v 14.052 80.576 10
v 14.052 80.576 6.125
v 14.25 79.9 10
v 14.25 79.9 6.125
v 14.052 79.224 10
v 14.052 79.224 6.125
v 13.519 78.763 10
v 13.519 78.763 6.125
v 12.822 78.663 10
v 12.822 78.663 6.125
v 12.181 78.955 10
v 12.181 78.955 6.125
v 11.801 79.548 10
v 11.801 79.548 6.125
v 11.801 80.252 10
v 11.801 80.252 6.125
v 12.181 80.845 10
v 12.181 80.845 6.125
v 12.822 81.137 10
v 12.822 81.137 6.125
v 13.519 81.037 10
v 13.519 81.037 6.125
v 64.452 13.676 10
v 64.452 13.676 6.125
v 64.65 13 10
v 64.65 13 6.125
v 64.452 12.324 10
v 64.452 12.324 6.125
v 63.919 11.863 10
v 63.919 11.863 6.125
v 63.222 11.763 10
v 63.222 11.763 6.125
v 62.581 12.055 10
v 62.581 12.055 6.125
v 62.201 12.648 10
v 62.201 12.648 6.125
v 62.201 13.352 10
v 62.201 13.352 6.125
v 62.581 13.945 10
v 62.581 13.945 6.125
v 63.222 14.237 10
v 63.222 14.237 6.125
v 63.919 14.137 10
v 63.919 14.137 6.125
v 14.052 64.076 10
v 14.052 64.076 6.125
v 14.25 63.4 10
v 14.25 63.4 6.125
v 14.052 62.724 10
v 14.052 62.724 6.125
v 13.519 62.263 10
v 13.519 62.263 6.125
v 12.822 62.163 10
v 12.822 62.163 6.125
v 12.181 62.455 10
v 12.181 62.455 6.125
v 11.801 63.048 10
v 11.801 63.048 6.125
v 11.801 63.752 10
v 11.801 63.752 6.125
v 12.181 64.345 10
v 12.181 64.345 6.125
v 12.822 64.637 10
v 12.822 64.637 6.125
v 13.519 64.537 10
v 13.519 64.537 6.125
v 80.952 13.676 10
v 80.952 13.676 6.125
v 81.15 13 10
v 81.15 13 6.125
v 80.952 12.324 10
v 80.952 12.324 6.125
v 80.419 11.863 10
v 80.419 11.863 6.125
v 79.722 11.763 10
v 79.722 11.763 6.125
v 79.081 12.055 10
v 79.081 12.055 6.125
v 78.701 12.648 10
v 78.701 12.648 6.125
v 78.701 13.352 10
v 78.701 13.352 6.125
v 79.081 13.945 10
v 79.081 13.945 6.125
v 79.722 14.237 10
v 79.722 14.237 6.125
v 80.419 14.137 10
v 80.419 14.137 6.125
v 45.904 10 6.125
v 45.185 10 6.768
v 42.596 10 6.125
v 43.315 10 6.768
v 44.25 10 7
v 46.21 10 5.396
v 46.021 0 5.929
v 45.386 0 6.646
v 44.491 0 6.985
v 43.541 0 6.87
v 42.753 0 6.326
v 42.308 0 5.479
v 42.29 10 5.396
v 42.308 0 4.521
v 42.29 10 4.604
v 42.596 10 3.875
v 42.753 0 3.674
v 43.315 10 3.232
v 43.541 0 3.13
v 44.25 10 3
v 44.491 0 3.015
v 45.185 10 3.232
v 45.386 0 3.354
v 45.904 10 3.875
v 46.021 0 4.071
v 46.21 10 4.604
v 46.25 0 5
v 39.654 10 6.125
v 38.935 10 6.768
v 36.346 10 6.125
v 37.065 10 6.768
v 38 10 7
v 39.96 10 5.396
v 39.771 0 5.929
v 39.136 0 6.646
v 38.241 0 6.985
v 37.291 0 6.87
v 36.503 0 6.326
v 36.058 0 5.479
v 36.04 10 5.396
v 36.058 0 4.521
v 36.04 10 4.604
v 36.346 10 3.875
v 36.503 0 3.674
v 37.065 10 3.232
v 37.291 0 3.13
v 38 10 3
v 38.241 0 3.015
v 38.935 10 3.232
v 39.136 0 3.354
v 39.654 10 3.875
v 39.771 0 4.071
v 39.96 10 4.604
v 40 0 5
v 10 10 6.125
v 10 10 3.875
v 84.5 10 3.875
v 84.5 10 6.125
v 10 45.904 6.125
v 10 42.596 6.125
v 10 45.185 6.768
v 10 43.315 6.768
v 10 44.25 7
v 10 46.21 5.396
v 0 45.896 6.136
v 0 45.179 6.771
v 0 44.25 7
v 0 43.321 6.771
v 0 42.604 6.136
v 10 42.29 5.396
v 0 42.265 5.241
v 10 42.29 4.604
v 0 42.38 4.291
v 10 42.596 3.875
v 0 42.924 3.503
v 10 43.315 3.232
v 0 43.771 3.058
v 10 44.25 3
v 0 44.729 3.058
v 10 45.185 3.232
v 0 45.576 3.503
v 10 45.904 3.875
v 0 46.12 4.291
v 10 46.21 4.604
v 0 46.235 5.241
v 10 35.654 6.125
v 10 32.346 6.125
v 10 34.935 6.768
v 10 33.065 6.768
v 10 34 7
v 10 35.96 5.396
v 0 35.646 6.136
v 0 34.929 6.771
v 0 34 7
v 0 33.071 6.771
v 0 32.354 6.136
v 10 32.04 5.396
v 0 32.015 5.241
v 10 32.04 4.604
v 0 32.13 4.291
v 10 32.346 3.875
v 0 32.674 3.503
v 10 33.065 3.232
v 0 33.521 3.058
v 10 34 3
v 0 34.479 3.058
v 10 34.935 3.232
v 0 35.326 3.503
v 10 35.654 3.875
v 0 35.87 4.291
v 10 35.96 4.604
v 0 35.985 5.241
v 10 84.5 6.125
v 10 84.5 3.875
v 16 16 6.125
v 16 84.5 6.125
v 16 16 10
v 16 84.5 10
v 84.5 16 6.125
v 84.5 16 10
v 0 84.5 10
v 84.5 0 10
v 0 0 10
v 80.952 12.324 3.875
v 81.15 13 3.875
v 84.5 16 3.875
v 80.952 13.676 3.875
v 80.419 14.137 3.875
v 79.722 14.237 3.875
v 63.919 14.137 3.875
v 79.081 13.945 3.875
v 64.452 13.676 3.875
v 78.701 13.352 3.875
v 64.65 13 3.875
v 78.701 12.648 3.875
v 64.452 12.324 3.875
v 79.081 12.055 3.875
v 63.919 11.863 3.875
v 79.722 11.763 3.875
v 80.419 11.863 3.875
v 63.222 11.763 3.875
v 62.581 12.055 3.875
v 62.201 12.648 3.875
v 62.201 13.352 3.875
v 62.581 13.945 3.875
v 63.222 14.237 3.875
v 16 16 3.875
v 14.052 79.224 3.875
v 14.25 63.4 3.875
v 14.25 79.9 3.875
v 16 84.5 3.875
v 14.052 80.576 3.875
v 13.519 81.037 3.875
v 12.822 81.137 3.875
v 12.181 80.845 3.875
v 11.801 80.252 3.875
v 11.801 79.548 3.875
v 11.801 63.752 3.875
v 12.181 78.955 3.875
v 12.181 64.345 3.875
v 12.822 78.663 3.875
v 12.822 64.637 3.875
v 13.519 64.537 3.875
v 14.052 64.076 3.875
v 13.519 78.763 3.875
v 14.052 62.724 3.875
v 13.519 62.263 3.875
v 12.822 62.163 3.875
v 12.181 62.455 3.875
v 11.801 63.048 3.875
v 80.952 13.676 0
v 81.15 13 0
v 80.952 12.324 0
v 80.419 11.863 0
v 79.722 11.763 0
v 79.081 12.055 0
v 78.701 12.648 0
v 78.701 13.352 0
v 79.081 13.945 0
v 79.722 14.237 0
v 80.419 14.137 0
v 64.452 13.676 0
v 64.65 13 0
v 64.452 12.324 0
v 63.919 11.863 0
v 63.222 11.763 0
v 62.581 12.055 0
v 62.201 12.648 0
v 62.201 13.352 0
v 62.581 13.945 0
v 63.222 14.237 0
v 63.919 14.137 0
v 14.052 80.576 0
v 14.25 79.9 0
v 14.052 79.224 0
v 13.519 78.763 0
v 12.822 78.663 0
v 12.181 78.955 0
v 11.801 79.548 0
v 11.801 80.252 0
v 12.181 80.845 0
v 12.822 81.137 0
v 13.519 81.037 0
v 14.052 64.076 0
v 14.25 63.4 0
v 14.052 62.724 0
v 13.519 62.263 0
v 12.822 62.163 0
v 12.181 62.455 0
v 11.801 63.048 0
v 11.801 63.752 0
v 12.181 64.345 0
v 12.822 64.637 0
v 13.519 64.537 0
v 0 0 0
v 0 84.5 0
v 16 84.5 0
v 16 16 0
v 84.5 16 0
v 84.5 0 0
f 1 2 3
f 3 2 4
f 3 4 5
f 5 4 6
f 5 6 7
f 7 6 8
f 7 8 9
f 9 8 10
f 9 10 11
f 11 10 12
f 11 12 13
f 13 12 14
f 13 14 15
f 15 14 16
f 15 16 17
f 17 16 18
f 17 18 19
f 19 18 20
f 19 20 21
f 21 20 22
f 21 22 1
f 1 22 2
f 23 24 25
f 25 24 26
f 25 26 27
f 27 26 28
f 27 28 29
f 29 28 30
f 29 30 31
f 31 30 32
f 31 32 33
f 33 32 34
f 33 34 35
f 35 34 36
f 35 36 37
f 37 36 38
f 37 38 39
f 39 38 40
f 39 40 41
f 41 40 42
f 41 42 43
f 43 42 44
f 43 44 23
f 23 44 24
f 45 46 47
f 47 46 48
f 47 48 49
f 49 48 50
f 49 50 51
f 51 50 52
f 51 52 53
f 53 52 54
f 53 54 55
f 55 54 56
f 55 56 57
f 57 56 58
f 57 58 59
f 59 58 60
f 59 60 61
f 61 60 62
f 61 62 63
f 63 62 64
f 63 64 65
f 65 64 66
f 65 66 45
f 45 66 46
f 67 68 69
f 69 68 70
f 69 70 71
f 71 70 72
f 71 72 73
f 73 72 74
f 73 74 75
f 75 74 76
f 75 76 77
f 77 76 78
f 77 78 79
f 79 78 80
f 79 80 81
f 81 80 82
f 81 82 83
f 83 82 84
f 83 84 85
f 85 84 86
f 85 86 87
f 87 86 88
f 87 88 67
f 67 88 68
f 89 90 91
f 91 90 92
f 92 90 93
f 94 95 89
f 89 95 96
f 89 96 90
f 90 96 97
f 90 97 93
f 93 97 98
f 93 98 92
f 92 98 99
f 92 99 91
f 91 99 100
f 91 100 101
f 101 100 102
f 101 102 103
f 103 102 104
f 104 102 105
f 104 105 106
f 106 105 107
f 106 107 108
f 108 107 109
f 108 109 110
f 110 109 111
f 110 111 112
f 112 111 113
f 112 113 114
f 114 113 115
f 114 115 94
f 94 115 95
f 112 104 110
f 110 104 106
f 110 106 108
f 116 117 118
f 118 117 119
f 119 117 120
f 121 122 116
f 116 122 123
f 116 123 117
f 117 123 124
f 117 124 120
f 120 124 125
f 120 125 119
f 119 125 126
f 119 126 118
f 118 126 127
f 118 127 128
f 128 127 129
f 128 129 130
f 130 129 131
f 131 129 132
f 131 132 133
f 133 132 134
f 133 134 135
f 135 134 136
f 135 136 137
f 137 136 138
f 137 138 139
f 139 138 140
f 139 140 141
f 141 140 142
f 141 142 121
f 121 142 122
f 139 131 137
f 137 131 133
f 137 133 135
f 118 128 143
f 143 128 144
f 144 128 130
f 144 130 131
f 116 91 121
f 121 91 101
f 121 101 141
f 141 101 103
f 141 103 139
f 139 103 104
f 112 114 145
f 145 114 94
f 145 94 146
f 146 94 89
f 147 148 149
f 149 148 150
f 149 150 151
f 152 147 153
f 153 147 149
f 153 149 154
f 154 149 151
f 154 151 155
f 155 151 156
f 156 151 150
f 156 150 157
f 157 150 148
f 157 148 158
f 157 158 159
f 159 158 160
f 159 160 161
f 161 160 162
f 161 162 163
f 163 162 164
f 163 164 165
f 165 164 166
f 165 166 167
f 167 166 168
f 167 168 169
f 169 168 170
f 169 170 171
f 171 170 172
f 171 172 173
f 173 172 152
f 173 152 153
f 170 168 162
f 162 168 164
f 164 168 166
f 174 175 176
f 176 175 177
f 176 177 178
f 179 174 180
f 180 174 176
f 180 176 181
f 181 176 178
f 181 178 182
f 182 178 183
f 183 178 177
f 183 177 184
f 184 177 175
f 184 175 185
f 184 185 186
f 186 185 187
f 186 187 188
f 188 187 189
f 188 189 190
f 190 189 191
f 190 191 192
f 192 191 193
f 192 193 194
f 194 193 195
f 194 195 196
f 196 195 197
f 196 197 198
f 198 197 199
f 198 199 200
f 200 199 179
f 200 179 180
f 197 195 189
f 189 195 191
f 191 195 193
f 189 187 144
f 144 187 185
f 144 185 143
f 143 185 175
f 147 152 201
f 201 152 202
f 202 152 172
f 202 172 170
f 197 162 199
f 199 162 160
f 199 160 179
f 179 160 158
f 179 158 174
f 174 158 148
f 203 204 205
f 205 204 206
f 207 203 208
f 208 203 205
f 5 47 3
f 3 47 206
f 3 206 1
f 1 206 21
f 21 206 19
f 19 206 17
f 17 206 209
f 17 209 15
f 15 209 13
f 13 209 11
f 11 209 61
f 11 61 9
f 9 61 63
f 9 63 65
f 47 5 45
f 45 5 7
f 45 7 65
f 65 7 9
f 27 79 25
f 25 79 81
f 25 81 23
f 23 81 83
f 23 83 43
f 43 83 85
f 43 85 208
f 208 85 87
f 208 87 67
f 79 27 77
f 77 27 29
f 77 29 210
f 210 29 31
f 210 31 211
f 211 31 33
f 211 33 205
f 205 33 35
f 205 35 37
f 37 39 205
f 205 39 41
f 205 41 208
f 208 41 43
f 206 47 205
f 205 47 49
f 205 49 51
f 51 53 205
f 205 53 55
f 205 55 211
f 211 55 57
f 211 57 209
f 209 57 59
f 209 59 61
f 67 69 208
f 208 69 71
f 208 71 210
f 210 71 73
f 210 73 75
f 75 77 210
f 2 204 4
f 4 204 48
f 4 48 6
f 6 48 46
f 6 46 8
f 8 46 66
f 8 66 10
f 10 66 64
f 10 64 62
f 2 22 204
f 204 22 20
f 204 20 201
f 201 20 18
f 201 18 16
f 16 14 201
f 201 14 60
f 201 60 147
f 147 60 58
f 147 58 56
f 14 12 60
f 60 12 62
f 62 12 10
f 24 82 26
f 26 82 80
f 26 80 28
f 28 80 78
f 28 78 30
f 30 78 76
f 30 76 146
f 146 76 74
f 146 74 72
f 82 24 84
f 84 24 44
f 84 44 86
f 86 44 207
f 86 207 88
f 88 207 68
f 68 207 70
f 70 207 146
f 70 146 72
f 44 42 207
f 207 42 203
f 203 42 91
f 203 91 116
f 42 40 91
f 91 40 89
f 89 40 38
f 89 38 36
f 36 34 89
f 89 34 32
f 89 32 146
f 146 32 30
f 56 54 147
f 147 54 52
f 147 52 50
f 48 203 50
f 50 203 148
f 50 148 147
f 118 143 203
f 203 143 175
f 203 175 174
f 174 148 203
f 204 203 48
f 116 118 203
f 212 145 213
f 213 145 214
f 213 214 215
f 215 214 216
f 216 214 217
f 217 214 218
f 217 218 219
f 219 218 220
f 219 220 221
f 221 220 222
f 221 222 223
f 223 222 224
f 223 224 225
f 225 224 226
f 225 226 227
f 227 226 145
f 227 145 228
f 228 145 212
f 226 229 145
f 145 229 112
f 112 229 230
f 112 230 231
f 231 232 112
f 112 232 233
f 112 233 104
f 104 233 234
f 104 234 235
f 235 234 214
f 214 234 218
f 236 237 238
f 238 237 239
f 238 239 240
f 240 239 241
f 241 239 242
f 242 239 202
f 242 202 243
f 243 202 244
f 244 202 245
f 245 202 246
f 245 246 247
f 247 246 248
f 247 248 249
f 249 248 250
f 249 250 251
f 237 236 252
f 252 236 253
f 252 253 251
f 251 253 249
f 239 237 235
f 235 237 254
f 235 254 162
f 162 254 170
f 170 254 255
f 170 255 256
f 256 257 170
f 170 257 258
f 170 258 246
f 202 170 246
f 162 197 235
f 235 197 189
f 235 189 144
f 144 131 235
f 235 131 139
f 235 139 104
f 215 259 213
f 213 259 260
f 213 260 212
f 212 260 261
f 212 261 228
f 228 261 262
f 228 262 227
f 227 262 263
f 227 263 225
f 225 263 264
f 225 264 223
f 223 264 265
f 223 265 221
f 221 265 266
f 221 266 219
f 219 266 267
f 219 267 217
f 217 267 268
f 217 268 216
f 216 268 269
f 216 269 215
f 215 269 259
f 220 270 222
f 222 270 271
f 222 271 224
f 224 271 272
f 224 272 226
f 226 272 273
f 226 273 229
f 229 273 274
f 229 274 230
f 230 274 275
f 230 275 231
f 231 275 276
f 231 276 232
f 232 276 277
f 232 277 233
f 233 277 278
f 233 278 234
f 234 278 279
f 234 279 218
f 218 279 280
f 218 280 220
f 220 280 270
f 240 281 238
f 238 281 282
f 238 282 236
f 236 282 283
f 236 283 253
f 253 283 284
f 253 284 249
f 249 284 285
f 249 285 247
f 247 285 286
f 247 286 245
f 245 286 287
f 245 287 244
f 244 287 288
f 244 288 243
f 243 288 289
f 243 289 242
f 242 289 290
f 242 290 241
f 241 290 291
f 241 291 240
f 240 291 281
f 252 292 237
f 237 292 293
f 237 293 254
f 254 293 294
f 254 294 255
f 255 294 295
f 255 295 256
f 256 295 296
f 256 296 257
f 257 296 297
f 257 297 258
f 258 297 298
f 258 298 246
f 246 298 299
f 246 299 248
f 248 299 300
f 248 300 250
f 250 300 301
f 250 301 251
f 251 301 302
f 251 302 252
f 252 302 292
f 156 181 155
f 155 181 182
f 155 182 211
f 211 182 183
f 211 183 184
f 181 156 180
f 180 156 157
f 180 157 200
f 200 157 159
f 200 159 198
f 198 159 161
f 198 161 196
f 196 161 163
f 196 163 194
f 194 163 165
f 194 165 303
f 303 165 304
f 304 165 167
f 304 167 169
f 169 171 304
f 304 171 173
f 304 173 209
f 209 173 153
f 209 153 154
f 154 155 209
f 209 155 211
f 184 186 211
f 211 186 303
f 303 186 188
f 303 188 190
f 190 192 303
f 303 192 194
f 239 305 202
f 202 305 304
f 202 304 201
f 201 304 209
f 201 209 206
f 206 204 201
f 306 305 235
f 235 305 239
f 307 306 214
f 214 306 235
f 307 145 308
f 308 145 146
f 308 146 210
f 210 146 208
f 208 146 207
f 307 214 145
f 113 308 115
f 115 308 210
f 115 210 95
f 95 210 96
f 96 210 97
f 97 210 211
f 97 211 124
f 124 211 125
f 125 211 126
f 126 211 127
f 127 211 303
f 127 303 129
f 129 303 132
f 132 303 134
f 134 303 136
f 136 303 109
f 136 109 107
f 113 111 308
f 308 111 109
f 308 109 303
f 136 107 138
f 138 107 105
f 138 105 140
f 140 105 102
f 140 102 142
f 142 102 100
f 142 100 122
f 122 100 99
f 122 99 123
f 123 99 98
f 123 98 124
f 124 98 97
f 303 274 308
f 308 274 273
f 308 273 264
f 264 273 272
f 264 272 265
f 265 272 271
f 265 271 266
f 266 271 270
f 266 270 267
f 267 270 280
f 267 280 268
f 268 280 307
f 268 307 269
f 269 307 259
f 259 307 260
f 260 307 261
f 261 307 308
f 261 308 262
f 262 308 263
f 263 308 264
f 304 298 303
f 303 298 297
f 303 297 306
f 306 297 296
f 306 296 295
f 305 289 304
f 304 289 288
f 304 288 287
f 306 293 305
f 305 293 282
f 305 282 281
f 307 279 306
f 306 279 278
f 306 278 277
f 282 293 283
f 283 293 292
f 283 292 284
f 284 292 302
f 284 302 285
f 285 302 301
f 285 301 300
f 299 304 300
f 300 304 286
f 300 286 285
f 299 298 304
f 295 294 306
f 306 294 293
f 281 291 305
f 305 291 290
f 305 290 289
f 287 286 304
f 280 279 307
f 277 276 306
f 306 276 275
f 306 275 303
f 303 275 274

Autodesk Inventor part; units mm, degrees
ref_plane "YZ Plane" through (0, 0, 0) normal (1, 0, 0) x (0, 1, 0)
ref_plane "XZ Plane" through (0, 0, 0) normal (0, 1, 0) x (-1, 0, 0)
ref_plane "XY Plane" through (0, 0, 0) normal (0, 0, 1) x (1, 0, 0)
sketch "Sketch1" plane through (0, 0, 0) normal (0, 0, 1) x (1, 0, 0)
  line L0 (0, 0) -> (0, 10)
  line L1 (0, 10) -> (0, 78.5)
  line L2 (0, 78.5) -> (0, 84.5)
  line L3 (0, 84.5) -> (10, 84.5)
  line L4 (10, 84.5) -> (16, 84.5)
  line L5 (16, 84.5) -> (16, 16)
  line L6 (16, 16) -> (84.5, 16)
  line L7 (84.5, 0) -> (0, 0)
  line L8 (10, 84.5) -> (10, 10)
  line L9 (84.5, 16) -> (84.5, 10)
  line L10 (84.5, 10) -> (84.5, 0)
  line L11 (84.5, 0) -> (0, 0)
  line L12 (84.5, 10) -> (10, 10)
  circle A0 centre (13, 79.9) radius 1.25
  circle A1 centre (13, 63.4) radius 1.25
  line L13 (13, 82.5899) -> (13, 13)
  circle A2 centre (63.4, 13) radius 1.25
  circle A3 centre (79.9, 13) radius 1.25
  point P0 (13, 84.5)
  dimension "d0" = 68.5
  dimension "d1" = 10
  dimension "d2" = 10
  dimension "d3" = 6
  dimension "d6" = 10
  dimension "d7" = 6
  dimension "d8" = 0
  dimension "d9" = 2.5
  dimension "d11" = 6
  dimension "d13" = 69.9
  dimension "d14" = 2.5
  dimension "d15" = 53.4
  dimension "d16" = 0
  dimension "d17" = 84.5
  dimension "d20" = 90
extrude "Extrusion1" add sketch "Sketch1" along normal blind 3.875
sketch "Sketch2" plane through (0, 0, 3.875) normal (0, 0, 1) x (1, 0, 0)
  line L0 (0, 0) -> (84.5, 0) projected
  line L1 (84.5, 0) -> (84.5, 16) projected
  line L2 (84.5, 16) -> (16, 16) projected
  line L3 (16, 16) -> (16, 84.5) projected
  line L4 (16, 84.5) -> (0, 84.5) projected
  line L5 (0, 84.5) -> (0, 0) projected
  circle A0 centre (13, 63.4) radius 1.25 projected
  circle A1 centre (13, 79.9) radius 1.25 projected
  circle A2 centre (63.4, 13) radius 1.25 projected
  circle A3 centre (79.9, 13) radius 1.25 projected
  line L6 (0, 0) -> (5.4402, 0)
  line L7 (10, 10) -> (10, 84.5)
  line L8 (10, 84.5) -> (0, 84.5)
  line L9 (0, 84.5) -> (0, 0)
  line L10 (84.5, 0) -> (84.5, 16) projected
  line L11 (0, 0) -> (84.5, 0)
  line L12 (84.5, 0) -> (84.5, 10)
  line L13 (84.5, 10) -> (10, 10)
  line L14 (0, 5.0322) -> (0, 0)
  dimension "d24" = 10
  dimension "d25" = 10
extrude "Extrusion2" add sketch "Sketch2" along normal blind 2.25 contours L5 L4 L7 L13 L1 L0
sketch "Sketch5" plane through (0, 0, 6.125) normal (0, 0, 1) x (1, 0, 0)
  line L0 (10, 10) -> (10, 84.5) projected
  line L1 (10, 84.5) -> (0, 84.5) projected
  line L2 (0, 84.5) -> (0, 0) projected
  line L3 (0, 0) -> (84.5, 0) projected
  line L4 (84.5, 0) -> (84.5, 10) projected
  line L5 (84.5, 10) -> (10, 10) projected
  circle A0 centre (79.9, 13) radius 1.25 projected
  circle A1 centre (63.4, 13) radius 1.25 projected
  circle A2 centre (13, 79.9) radius 1.25 projected
  circle A3 centre (13, 63.4) radius 1.25 projected
  line L6 (10, 84.5) -> (10, 10) projected
  line L7 (10, 10) -> (84.5, 10) projected
  line L8 (84.5, 10) -> (84.5, 16) projected
  line L9 (84.5, 16) -> (16, 16) projected
  line L10 (16, 16) -> (16, 84.5) projected
  line L11 (16, 84.5) -> (10, 84.5) projected
  line L12 (0, 84.5) -> (16, 84.5)
  line L13 (16, 0) -> (0, 0)
  line L14 (0, 0) -> (0, 84.5)
  line L15 (0, 0) -> (84.5, 0)
  line L16 (84.5, 0) -> (84.5, 16)
  line L17 (84.5, 16) -> (16, 16)
  line L18 (0, 16) -> (0, 0)
  line L19 (16, 84.5) -> (16, 16)
extrude "Extrusion5" add sketch "Sketch5" along normal blind 3.875 contours L5 L4 L3 L2 L1 L0 | L0 L11 L10 L9 L8 L5 | A0 | A1 | A2 | A3
sketch "Sketch6" plane through (0, 0, 0) normal (-1, 0, 0) x (0, 0, 1)
  line L0 (3.875, 84.5) -> (3.875, 10) projected
  line L1 (3.875, 84.5) -> (6.125, 84.5) projected
  line L2 (6.125, 10) -> (6.125, 84.5) projected
  line L3 (3.875, 10) -> (6.125, 10) projected
  line L4 (0, 84.5) -> (10, 84.5) projected
  line L5 (0, 84.5) -> (0, 0) projected
  line L6 (0, 0) -> (10, 0) projected
  line L7 (10, 84.5) -> (10, 0) projected
  circle A0 centre (5, 44.25) radius 2
  circle A1 centre (5, 34) radius 2
  point P0 (6.125, 47.25)
  dimension "d51" = 4
  dimension "d52" = 4
  dimension "d53" = 10
  dimension "d54" = 5
  dimension "d55" = 5
  dimension "d73" = 24
  dimension "d74" = 34.25
extrude "Extrusion6" cut sketch "Sketch6" against normal blind 10 contours A0 L2 L0 | L0 A0 | A0 L2 | A1 L2 L0 | L0 A1 | A1 L2
sketch "Sketch7" plane through (0, 0, 0) normal (0, -1, 0) x (1, 0, 0)
  line L0 (10, 3.875) -> (84.5, 3.875) projected
  line L1 (10, 3.875) -> (10, 6.125) projected
  line L2 (84.5, 6.125) -> (10, 6.125) projected
  line L3 (84.5, 3.875) -> (84.5, 6.125) projected
  line L4 (0, 0) -> (0, 10) projected
  line L5 (0, 0) -> (84.5, 0) projected
  line L6 (84.5, 0) -> (84.5, 10) projected
  line L7 (0, 10) -> (84.5, 10) projected
  circle A0 centre (44.25, 5) radius 2
  circle A1 centre (38, 5) radius 2
  point P0 (84.5, 5)
  dimension "d60" = 4
  dimension "d61" = 4
  dimension "d62" = 10
  dimension "d63" = 5
  dimension "d64" = 5
  dimension "d77" = 28
  dimension "d78" = 34.25
extrude "Extrusion7" cut sketch "Sketch7" against normal blind 10 contours A1 L2 L0 | L0 A1 | A1 L2 | A0 L2 L0 | L0 A0 | A0 L2
sketch "Sketch8" plane through (0, 0, 0) normal (0, 0, -1) x (-1, 0, 0)
  line L0 (0, 0) -> (-84.5, 0) projected
  line L1 (0, 84.5) -> (0, 0) projected
  line L2 (-16, 84.5) -> (0, 84.5) projected
  line L3 (-16, 16) -> (-16, 84.5) projected
  line L4 (-84.5, 16) -> (-16, 16) projected
  line L5 (-84.5, 0) -> (-84.5, 16) projected
  circle A0 centre (-13, 63.4) radius 1.25 projected
  circle A1 centre (-13, 79.9) radius 1.25 projected
  circle A2 centre (-63.4, 13) radius 1.25 projected
  circle A3 centre (-79.9, 13) radius 1.25 projected
  circle A4 centre (-79.9, 13) radius 1.25
  circle A5 centre (-63.4, 13) radius 1.25
  circle A6 centre (-13, 63.4) radius 1.25
  circle A7 centre (-13, 79.9) radius 1.25
extrude "Extrusion8" cut sketch "Sketch8" against normal through all contours A0 | A1 | A2 | A3
equation "\"d0\" = PCB_L"
equation "\"d1\" = Clamp_Bracket_W"
equation "\"d2\" = Clamp_Bracket_W"
equation "\"d3\" = Trim_Mount_W"
equation "\"d6\" = d1"
equation "\"d7\" = d3"
equation "\"d11\" = Trim_Mount_W"
equation "\"d14\" = d9"
equation "\"d17\" = d0 + d1 + d11"
equation "\"d22\" = Mount_W_Back"
equation "\"d24\" = Clamp_Bracket_W"
equation "\"d25\" = Clamp_Bracket_W"
equation "\"d49\" = Mount_W_Front"
equation "\"d51\" = Post_Mount_Hole_D"
equation "\"d52\" = d51"
equation "\"d54\" = 0.5 * d53"
equation "\"d55\" = 0.5 * d53"
equation "\"d73\" = 0.5 * PCB_W - PCB_W_Offset"
equation "\"d74\" = 0.5 * PCB_L"
equation "\"d58\" = Clamp_Bracket_W"
equation "\"d60\" = d51"
equation "\"d61\" = d51"
equation "\"d63\" = 0.5 * d62"
equation "\"d64\" = 0.5 * d62"
equation "\"d77\" = 0.5 * PCB_W + PCB_W_Offset"
equation "\"d78\" = 0.5 * PCB_L"
equation "\"d67\" = Clamp_Bracket_W"
equation "\"PCB_L\" = 68.5"
equation "\"Clamp_Bracket_W\" = 10"
equation "\"Trim_Mount_W\" = 6"
equation "\"Mount_W_Back\" = 3.875"
equation "\"Mount_W_Front\" = 3.875"
equation "\"Post_Mount_Hole_D\" = 4"
equation "\"PCB_W\" = 52"
equation "\"PCB_W_Offset\" = 2"
properties part number "UCD V1.0 PCB Holder"
